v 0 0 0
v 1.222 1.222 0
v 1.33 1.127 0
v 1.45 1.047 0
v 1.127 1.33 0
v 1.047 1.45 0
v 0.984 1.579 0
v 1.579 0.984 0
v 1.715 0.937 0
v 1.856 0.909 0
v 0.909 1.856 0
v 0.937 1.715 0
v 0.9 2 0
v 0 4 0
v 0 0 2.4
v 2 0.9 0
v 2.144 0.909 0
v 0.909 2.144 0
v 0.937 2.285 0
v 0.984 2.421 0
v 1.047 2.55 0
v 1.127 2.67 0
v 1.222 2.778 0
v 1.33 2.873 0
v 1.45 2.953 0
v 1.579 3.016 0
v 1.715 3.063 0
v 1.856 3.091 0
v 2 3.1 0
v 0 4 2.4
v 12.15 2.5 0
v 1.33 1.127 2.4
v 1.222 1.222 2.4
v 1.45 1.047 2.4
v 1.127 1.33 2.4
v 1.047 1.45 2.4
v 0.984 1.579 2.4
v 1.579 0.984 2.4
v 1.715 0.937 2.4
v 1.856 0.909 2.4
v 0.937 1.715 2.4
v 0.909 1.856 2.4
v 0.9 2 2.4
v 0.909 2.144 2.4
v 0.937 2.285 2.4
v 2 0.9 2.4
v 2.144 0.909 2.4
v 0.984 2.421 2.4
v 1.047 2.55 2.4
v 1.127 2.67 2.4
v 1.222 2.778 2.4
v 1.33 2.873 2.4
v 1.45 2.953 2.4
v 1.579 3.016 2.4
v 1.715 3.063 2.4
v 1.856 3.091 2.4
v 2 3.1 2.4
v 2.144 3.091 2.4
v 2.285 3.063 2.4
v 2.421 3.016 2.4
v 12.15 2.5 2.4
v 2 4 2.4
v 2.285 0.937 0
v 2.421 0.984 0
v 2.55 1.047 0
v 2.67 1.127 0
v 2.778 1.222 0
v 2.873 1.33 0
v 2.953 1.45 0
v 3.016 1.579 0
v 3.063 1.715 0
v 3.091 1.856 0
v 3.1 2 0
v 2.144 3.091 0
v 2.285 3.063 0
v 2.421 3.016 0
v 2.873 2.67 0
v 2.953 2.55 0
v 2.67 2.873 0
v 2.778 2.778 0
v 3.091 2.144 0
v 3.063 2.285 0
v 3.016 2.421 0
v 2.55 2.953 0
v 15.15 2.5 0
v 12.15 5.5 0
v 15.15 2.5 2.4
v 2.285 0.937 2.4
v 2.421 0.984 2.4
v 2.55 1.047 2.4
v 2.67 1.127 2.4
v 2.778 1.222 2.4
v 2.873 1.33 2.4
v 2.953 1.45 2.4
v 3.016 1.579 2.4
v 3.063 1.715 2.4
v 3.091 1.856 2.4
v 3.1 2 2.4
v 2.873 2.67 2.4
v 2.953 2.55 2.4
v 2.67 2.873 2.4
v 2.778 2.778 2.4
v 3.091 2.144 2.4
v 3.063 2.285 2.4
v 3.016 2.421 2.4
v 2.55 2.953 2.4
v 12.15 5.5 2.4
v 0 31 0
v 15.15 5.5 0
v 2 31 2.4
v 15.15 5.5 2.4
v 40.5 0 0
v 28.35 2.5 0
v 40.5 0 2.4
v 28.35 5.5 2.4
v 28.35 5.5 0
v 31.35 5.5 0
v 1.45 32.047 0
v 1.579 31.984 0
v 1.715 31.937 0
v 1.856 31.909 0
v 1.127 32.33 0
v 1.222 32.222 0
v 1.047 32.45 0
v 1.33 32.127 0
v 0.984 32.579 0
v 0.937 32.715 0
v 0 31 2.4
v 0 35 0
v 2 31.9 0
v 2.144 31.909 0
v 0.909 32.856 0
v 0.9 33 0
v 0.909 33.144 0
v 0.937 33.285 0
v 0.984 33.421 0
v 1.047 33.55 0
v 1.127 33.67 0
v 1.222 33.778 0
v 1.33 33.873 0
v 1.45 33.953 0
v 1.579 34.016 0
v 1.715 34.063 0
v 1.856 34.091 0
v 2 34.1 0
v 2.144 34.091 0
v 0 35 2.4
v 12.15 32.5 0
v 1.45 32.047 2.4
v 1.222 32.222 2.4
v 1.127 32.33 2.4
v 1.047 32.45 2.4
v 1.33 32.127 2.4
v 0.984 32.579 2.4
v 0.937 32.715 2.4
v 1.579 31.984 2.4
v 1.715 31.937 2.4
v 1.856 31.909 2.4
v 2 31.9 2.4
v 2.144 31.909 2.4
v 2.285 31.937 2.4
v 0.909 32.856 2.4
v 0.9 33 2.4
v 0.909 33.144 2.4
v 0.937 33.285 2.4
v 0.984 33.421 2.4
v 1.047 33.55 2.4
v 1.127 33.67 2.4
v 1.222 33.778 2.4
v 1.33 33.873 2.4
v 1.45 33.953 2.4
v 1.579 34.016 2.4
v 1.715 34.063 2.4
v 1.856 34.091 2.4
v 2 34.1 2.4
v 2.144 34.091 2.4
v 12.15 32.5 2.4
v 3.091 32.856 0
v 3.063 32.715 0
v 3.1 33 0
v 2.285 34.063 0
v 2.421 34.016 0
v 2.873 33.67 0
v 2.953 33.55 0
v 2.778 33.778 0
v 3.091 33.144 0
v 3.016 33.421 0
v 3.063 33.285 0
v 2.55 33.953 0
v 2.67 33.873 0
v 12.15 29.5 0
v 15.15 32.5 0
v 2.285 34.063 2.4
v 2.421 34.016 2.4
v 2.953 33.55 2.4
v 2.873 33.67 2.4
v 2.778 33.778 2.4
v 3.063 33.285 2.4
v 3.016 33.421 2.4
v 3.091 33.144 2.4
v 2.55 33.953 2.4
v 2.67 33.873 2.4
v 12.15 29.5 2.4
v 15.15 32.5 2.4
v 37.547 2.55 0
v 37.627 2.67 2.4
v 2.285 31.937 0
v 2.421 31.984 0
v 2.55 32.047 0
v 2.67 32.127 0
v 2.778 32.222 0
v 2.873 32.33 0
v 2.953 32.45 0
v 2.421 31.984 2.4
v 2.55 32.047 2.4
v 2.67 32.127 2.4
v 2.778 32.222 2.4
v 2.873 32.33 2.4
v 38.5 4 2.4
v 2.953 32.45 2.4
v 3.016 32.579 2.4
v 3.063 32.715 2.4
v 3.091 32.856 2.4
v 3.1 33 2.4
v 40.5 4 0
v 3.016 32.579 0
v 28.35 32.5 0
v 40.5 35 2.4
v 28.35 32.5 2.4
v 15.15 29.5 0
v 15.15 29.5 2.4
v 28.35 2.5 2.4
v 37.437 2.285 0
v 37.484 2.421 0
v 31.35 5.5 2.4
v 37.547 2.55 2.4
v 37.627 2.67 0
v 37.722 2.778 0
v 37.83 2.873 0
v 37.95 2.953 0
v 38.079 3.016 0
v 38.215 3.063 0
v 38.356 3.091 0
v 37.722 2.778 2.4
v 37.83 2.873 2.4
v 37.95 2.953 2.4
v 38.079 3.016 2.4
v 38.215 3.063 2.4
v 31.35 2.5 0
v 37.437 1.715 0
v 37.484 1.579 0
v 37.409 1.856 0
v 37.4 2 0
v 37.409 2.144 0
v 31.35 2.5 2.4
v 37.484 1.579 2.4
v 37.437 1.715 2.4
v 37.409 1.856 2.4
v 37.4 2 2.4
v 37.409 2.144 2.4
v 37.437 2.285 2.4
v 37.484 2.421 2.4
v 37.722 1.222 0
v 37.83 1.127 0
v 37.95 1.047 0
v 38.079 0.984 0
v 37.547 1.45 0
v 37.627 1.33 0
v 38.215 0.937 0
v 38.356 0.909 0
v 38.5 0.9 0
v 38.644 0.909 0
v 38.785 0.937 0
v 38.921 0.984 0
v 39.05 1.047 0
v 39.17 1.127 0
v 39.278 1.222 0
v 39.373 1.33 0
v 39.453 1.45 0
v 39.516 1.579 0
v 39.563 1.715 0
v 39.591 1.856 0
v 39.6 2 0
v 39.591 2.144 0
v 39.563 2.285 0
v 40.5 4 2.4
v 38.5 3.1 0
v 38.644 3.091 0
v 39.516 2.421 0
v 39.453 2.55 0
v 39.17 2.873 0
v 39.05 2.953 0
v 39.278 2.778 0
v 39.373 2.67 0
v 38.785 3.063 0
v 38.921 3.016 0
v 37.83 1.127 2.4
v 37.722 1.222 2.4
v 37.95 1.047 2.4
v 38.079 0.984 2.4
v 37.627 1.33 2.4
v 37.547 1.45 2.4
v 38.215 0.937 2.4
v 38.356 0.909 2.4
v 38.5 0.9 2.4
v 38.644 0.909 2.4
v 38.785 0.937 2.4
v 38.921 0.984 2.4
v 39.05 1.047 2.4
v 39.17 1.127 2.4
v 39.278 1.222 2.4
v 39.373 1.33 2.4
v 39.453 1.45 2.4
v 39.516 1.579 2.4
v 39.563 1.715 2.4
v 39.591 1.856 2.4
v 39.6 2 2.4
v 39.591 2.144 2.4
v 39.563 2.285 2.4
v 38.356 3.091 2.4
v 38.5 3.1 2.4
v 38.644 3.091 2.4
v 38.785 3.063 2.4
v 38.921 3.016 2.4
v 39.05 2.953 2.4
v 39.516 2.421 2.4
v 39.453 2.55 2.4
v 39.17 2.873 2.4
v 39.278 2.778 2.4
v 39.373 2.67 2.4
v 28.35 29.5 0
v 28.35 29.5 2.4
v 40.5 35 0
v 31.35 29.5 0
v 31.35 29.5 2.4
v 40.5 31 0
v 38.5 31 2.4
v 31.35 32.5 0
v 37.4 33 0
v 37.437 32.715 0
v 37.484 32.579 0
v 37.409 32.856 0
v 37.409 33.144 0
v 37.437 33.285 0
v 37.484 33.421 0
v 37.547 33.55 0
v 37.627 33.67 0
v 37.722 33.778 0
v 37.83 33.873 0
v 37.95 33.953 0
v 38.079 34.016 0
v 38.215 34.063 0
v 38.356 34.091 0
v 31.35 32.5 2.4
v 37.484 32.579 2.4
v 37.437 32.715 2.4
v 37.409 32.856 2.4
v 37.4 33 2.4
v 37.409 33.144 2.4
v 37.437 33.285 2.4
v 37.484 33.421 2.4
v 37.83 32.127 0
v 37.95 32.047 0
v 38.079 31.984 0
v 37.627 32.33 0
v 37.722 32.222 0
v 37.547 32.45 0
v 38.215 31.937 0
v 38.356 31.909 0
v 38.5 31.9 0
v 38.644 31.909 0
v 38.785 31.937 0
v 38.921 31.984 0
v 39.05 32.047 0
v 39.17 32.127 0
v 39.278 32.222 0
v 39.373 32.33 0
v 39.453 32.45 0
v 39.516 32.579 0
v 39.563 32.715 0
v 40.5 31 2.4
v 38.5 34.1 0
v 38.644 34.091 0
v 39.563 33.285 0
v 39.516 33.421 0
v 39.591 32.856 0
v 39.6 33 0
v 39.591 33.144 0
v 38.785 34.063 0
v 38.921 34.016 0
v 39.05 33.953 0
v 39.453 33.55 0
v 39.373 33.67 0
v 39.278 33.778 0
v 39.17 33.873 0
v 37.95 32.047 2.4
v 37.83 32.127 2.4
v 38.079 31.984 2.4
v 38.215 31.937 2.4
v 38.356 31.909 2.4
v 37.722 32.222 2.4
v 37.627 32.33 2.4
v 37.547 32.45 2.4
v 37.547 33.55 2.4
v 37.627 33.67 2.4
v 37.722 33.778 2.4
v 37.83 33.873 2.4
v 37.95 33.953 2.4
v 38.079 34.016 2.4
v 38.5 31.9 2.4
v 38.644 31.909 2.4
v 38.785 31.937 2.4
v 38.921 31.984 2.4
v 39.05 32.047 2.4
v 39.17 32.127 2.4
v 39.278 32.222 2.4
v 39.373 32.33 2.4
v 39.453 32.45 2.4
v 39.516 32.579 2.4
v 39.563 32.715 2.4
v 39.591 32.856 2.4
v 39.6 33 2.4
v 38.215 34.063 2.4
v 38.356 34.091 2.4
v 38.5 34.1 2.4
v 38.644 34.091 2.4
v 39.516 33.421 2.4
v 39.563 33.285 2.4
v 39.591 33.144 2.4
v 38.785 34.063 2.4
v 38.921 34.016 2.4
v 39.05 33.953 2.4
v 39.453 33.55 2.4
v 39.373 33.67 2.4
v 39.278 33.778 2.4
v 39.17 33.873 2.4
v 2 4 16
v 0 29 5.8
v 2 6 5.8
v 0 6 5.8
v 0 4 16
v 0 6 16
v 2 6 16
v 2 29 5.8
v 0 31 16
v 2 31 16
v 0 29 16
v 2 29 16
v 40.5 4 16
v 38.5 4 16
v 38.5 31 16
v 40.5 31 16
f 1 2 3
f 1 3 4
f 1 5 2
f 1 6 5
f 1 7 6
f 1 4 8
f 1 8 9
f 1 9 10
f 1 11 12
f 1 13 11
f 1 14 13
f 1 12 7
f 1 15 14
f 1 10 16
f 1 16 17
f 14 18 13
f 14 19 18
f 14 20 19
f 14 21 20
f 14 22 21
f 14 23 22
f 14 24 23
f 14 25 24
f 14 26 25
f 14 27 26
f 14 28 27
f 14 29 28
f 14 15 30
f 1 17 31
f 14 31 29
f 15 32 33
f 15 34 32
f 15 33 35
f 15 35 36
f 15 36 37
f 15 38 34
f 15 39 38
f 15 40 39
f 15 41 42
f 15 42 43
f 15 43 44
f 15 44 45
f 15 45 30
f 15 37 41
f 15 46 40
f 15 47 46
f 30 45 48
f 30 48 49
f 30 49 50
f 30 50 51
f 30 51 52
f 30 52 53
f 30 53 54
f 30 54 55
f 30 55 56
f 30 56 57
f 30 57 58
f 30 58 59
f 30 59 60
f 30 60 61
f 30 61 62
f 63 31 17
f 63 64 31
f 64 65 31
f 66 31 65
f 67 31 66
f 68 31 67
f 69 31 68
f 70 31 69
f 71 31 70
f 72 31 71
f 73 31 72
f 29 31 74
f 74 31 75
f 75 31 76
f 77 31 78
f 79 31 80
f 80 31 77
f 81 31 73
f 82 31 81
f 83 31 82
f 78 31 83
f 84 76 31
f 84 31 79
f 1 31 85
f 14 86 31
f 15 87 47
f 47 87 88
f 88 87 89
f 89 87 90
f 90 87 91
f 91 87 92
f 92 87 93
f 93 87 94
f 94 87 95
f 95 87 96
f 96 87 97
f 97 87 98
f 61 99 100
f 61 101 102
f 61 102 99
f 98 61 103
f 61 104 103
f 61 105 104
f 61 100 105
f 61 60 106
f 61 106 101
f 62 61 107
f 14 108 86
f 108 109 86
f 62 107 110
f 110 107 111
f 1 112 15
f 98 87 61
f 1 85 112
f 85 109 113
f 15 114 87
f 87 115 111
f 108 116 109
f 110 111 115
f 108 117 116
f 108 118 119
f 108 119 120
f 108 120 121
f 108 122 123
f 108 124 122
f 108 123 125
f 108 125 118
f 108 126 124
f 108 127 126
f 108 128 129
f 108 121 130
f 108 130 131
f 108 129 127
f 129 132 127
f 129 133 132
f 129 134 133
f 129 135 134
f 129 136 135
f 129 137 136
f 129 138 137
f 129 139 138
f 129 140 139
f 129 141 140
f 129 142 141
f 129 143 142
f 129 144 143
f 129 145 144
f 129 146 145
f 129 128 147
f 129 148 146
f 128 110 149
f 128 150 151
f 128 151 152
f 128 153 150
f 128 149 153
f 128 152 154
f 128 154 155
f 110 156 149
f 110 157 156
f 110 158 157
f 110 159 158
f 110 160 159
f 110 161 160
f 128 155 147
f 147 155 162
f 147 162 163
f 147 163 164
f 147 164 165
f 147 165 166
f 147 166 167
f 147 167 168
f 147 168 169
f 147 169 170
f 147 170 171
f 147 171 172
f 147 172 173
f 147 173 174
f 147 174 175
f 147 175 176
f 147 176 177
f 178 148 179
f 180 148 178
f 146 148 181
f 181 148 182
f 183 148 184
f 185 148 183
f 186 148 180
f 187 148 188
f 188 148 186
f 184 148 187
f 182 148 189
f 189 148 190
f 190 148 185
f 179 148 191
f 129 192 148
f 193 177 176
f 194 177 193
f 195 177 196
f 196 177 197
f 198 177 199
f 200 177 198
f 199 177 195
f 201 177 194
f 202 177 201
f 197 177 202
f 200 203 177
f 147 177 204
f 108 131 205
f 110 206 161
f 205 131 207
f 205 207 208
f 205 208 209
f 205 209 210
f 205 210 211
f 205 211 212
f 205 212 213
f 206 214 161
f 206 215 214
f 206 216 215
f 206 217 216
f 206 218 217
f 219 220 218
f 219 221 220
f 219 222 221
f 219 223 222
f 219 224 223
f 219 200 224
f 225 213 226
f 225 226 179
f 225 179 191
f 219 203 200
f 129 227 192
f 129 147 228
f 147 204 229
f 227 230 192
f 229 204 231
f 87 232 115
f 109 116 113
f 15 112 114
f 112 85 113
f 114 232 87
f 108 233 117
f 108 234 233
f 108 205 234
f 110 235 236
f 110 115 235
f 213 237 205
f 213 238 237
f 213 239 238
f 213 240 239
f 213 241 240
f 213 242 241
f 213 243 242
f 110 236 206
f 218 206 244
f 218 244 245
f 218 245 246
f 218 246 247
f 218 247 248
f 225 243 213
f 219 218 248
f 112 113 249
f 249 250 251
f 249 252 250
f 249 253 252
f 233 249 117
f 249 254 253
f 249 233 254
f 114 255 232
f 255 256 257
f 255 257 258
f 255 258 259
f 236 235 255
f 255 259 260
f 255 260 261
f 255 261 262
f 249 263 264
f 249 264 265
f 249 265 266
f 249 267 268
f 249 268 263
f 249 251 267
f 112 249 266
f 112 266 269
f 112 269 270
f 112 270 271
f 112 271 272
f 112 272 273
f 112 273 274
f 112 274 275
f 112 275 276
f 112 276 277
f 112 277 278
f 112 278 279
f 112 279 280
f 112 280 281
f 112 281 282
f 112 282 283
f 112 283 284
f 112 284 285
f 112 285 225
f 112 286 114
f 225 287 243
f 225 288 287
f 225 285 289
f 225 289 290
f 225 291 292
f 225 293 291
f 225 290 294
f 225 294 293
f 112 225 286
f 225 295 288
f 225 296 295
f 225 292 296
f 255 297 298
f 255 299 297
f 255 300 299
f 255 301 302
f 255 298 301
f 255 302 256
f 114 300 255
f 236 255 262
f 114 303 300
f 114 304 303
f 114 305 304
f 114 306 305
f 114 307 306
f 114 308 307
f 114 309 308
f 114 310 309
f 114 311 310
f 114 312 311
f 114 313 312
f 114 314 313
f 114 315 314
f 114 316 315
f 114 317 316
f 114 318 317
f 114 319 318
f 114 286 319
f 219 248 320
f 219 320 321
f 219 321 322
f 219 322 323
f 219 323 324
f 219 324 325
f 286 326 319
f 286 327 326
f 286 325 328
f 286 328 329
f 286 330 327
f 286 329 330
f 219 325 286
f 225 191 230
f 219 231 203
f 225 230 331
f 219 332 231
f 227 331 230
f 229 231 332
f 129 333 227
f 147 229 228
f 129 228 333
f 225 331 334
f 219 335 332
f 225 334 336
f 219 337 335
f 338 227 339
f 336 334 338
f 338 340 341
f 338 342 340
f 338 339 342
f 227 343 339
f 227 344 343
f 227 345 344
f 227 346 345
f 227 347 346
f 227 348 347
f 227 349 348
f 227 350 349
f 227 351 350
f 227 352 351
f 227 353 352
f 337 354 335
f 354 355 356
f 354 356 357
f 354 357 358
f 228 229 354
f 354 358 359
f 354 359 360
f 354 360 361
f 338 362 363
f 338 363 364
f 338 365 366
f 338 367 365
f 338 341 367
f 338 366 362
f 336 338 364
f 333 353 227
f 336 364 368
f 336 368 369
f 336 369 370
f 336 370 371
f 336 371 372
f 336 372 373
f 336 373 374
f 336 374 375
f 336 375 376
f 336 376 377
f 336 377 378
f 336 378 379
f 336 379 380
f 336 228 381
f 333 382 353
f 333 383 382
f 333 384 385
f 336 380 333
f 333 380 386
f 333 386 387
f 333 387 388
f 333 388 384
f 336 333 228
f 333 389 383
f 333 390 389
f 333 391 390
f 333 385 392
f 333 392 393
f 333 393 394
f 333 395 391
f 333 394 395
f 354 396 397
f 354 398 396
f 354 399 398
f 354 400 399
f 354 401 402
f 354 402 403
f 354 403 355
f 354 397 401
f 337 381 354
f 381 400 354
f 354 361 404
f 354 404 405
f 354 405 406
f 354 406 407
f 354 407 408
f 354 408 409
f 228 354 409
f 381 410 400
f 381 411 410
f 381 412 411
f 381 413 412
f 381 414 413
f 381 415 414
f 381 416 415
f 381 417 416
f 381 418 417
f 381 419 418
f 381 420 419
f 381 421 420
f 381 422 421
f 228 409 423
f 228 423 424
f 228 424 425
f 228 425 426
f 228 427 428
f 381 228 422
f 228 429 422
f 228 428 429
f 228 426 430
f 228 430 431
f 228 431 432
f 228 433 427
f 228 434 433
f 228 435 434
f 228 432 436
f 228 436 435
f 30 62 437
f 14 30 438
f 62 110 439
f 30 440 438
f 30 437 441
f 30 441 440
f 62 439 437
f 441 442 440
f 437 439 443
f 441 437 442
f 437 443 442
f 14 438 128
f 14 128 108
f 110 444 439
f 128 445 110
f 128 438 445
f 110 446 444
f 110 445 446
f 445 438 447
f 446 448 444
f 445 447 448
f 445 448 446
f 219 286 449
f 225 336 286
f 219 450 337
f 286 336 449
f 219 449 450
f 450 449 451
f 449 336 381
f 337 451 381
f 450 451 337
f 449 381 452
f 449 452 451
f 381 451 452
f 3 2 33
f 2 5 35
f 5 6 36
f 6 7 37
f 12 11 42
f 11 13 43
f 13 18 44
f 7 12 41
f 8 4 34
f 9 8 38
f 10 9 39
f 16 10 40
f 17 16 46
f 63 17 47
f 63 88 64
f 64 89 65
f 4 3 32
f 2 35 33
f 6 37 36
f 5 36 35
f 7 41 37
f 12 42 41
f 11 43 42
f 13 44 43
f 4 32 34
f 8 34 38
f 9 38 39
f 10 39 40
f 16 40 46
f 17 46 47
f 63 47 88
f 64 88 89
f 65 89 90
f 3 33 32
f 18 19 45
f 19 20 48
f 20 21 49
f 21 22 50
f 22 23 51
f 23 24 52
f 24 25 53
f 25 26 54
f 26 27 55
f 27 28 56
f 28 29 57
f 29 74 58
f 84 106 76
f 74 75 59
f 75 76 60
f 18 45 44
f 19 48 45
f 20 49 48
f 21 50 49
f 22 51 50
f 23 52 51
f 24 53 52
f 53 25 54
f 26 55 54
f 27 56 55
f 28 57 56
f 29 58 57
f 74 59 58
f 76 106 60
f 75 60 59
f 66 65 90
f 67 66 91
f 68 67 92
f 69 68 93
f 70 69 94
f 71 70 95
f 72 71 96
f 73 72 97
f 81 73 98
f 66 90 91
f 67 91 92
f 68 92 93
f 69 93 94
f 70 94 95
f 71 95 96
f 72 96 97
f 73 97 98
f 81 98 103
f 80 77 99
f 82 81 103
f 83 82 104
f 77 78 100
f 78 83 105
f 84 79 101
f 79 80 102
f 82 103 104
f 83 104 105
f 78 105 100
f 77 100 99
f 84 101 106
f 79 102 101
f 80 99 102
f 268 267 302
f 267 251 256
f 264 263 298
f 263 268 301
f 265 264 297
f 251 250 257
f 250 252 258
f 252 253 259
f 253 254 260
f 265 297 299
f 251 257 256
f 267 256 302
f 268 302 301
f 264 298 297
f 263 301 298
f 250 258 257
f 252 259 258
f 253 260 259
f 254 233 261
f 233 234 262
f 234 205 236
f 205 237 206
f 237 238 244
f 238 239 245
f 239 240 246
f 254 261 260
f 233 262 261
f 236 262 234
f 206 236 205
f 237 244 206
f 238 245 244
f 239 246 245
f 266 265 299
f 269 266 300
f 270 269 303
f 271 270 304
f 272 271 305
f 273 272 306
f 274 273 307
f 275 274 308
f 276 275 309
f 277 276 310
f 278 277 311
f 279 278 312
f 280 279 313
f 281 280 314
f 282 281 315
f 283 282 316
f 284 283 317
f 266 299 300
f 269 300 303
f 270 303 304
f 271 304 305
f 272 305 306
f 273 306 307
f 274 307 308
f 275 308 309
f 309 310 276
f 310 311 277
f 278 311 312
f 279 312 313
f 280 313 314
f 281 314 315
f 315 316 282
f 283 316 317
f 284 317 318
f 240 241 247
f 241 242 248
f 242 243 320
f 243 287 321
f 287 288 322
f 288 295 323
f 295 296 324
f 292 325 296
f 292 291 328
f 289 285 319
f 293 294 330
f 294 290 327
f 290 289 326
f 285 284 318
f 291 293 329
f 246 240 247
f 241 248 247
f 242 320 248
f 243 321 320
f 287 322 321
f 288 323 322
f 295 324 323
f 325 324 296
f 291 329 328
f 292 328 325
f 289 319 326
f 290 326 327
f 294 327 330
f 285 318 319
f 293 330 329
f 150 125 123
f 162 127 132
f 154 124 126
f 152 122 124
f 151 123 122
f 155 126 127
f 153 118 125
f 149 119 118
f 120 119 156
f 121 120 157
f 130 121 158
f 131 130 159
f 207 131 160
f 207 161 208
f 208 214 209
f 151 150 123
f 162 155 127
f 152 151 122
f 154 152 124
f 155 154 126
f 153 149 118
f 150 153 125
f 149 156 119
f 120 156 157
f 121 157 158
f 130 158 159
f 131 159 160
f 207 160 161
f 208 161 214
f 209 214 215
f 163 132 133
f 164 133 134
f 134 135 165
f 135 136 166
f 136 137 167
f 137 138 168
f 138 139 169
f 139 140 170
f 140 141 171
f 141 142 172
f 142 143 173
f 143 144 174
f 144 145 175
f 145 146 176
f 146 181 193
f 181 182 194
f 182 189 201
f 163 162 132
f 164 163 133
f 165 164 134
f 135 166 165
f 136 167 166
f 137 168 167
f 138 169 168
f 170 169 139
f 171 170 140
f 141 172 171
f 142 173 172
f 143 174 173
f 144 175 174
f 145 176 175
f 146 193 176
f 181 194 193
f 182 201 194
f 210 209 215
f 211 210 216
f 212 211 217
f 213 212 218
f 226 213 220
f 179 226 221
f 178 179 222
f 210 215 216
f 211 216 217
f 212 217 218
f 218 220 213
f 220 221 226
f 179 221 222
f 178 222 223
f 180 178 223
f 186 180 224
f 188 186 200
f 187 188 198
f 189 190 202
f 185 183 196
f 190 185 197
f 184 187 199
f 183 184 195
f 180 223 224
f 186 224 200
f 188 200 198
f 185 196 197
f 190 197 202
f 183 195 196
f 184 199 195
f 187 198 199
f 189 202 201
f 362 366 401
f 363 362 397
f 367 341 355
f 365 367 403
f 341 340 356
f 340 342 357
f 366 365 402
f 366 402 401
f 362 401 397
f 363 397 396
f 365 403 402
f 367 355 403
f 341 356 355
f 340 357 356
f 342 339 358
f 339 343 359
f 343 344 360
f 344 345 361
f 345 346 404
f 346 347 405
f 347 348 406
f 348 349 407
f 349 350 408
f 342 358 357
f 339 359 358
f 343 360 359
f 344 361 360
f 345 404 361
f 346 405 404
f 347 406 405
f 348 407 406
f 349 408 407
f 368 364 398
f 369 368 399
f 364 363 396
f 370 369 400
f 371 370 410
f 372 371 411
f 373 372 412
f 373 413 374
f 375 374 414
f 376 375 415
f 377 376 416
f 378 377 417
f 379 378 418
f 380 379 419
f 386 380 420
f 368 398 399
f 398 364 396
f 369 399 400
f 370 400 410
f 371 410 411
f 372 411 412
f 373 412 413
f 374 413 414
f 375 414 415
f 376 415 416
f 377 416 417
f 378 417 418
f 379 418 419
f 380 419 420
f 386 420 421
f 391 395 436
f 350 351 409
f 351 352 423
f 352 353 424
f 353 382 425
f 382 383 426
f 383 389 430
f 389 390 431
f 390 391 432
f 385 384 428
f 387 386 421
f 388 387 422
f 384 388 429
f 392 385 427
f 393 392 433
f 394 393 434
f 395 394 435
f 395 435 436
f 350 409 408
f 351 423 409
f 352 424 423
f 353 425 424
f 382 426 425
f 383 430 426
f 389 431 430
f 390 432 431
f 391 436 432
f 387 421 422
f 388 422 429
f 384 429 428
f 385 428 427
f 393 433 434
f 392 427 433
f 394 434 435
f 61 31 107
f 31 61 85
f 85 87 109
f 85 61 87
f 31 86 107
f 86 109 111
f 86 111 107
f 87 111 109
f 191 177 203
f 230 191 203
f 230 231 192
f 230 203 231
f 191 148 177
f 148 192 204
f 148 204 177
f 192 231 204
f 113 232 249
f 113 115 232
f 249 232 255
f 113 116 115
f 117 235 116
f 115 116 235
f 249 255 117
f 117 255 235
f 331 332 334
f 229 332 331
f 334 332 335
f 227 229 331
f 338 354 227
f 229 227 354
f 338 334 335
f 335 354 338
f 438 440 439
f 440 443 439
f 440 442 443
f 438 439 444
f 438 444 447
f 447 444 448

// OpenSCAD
// Generated FH1 print part; mm. See parameters.json and physical-fit limits.
difference() {
union() {
cube([40.5,35,2.4]);
translate([0, 4, 0]) { cube([2,27,16]); }
translate([38.5, 4, 0]) { cube([2,27,16]); }
}
translate([2, 2, -0.1]) { cylinder(d=2.2,h=2.6,$fn=48); }
translate([38.5, 2, -0.1]) { cylinder(d=2.2,h=2.6,$fn=48); }
translate([2, 33, -0.1]) { cylinder(d=2.2,h=2.6,$fn=48); }
translate([38.5, 33, -0.1]) { cylinder(d=2.2,h=2.6,$fn=48); }
translate([12.15, 2.5, -0.1]) { cube([3,3,2.6]); }
translate([12.15, 29.5, -0.1]) { cube([3,3,2.6]); }
translate([28.349999999999998, 2.5, -0.1]) { cube([3,3,2.6]); }
translate([28.349999999999998, 29.5, -0.1]) { cube([3,3,2.6]); }
translate([-0.1, 6, 5.8]) { cube([4.2,23,20]); }
}
